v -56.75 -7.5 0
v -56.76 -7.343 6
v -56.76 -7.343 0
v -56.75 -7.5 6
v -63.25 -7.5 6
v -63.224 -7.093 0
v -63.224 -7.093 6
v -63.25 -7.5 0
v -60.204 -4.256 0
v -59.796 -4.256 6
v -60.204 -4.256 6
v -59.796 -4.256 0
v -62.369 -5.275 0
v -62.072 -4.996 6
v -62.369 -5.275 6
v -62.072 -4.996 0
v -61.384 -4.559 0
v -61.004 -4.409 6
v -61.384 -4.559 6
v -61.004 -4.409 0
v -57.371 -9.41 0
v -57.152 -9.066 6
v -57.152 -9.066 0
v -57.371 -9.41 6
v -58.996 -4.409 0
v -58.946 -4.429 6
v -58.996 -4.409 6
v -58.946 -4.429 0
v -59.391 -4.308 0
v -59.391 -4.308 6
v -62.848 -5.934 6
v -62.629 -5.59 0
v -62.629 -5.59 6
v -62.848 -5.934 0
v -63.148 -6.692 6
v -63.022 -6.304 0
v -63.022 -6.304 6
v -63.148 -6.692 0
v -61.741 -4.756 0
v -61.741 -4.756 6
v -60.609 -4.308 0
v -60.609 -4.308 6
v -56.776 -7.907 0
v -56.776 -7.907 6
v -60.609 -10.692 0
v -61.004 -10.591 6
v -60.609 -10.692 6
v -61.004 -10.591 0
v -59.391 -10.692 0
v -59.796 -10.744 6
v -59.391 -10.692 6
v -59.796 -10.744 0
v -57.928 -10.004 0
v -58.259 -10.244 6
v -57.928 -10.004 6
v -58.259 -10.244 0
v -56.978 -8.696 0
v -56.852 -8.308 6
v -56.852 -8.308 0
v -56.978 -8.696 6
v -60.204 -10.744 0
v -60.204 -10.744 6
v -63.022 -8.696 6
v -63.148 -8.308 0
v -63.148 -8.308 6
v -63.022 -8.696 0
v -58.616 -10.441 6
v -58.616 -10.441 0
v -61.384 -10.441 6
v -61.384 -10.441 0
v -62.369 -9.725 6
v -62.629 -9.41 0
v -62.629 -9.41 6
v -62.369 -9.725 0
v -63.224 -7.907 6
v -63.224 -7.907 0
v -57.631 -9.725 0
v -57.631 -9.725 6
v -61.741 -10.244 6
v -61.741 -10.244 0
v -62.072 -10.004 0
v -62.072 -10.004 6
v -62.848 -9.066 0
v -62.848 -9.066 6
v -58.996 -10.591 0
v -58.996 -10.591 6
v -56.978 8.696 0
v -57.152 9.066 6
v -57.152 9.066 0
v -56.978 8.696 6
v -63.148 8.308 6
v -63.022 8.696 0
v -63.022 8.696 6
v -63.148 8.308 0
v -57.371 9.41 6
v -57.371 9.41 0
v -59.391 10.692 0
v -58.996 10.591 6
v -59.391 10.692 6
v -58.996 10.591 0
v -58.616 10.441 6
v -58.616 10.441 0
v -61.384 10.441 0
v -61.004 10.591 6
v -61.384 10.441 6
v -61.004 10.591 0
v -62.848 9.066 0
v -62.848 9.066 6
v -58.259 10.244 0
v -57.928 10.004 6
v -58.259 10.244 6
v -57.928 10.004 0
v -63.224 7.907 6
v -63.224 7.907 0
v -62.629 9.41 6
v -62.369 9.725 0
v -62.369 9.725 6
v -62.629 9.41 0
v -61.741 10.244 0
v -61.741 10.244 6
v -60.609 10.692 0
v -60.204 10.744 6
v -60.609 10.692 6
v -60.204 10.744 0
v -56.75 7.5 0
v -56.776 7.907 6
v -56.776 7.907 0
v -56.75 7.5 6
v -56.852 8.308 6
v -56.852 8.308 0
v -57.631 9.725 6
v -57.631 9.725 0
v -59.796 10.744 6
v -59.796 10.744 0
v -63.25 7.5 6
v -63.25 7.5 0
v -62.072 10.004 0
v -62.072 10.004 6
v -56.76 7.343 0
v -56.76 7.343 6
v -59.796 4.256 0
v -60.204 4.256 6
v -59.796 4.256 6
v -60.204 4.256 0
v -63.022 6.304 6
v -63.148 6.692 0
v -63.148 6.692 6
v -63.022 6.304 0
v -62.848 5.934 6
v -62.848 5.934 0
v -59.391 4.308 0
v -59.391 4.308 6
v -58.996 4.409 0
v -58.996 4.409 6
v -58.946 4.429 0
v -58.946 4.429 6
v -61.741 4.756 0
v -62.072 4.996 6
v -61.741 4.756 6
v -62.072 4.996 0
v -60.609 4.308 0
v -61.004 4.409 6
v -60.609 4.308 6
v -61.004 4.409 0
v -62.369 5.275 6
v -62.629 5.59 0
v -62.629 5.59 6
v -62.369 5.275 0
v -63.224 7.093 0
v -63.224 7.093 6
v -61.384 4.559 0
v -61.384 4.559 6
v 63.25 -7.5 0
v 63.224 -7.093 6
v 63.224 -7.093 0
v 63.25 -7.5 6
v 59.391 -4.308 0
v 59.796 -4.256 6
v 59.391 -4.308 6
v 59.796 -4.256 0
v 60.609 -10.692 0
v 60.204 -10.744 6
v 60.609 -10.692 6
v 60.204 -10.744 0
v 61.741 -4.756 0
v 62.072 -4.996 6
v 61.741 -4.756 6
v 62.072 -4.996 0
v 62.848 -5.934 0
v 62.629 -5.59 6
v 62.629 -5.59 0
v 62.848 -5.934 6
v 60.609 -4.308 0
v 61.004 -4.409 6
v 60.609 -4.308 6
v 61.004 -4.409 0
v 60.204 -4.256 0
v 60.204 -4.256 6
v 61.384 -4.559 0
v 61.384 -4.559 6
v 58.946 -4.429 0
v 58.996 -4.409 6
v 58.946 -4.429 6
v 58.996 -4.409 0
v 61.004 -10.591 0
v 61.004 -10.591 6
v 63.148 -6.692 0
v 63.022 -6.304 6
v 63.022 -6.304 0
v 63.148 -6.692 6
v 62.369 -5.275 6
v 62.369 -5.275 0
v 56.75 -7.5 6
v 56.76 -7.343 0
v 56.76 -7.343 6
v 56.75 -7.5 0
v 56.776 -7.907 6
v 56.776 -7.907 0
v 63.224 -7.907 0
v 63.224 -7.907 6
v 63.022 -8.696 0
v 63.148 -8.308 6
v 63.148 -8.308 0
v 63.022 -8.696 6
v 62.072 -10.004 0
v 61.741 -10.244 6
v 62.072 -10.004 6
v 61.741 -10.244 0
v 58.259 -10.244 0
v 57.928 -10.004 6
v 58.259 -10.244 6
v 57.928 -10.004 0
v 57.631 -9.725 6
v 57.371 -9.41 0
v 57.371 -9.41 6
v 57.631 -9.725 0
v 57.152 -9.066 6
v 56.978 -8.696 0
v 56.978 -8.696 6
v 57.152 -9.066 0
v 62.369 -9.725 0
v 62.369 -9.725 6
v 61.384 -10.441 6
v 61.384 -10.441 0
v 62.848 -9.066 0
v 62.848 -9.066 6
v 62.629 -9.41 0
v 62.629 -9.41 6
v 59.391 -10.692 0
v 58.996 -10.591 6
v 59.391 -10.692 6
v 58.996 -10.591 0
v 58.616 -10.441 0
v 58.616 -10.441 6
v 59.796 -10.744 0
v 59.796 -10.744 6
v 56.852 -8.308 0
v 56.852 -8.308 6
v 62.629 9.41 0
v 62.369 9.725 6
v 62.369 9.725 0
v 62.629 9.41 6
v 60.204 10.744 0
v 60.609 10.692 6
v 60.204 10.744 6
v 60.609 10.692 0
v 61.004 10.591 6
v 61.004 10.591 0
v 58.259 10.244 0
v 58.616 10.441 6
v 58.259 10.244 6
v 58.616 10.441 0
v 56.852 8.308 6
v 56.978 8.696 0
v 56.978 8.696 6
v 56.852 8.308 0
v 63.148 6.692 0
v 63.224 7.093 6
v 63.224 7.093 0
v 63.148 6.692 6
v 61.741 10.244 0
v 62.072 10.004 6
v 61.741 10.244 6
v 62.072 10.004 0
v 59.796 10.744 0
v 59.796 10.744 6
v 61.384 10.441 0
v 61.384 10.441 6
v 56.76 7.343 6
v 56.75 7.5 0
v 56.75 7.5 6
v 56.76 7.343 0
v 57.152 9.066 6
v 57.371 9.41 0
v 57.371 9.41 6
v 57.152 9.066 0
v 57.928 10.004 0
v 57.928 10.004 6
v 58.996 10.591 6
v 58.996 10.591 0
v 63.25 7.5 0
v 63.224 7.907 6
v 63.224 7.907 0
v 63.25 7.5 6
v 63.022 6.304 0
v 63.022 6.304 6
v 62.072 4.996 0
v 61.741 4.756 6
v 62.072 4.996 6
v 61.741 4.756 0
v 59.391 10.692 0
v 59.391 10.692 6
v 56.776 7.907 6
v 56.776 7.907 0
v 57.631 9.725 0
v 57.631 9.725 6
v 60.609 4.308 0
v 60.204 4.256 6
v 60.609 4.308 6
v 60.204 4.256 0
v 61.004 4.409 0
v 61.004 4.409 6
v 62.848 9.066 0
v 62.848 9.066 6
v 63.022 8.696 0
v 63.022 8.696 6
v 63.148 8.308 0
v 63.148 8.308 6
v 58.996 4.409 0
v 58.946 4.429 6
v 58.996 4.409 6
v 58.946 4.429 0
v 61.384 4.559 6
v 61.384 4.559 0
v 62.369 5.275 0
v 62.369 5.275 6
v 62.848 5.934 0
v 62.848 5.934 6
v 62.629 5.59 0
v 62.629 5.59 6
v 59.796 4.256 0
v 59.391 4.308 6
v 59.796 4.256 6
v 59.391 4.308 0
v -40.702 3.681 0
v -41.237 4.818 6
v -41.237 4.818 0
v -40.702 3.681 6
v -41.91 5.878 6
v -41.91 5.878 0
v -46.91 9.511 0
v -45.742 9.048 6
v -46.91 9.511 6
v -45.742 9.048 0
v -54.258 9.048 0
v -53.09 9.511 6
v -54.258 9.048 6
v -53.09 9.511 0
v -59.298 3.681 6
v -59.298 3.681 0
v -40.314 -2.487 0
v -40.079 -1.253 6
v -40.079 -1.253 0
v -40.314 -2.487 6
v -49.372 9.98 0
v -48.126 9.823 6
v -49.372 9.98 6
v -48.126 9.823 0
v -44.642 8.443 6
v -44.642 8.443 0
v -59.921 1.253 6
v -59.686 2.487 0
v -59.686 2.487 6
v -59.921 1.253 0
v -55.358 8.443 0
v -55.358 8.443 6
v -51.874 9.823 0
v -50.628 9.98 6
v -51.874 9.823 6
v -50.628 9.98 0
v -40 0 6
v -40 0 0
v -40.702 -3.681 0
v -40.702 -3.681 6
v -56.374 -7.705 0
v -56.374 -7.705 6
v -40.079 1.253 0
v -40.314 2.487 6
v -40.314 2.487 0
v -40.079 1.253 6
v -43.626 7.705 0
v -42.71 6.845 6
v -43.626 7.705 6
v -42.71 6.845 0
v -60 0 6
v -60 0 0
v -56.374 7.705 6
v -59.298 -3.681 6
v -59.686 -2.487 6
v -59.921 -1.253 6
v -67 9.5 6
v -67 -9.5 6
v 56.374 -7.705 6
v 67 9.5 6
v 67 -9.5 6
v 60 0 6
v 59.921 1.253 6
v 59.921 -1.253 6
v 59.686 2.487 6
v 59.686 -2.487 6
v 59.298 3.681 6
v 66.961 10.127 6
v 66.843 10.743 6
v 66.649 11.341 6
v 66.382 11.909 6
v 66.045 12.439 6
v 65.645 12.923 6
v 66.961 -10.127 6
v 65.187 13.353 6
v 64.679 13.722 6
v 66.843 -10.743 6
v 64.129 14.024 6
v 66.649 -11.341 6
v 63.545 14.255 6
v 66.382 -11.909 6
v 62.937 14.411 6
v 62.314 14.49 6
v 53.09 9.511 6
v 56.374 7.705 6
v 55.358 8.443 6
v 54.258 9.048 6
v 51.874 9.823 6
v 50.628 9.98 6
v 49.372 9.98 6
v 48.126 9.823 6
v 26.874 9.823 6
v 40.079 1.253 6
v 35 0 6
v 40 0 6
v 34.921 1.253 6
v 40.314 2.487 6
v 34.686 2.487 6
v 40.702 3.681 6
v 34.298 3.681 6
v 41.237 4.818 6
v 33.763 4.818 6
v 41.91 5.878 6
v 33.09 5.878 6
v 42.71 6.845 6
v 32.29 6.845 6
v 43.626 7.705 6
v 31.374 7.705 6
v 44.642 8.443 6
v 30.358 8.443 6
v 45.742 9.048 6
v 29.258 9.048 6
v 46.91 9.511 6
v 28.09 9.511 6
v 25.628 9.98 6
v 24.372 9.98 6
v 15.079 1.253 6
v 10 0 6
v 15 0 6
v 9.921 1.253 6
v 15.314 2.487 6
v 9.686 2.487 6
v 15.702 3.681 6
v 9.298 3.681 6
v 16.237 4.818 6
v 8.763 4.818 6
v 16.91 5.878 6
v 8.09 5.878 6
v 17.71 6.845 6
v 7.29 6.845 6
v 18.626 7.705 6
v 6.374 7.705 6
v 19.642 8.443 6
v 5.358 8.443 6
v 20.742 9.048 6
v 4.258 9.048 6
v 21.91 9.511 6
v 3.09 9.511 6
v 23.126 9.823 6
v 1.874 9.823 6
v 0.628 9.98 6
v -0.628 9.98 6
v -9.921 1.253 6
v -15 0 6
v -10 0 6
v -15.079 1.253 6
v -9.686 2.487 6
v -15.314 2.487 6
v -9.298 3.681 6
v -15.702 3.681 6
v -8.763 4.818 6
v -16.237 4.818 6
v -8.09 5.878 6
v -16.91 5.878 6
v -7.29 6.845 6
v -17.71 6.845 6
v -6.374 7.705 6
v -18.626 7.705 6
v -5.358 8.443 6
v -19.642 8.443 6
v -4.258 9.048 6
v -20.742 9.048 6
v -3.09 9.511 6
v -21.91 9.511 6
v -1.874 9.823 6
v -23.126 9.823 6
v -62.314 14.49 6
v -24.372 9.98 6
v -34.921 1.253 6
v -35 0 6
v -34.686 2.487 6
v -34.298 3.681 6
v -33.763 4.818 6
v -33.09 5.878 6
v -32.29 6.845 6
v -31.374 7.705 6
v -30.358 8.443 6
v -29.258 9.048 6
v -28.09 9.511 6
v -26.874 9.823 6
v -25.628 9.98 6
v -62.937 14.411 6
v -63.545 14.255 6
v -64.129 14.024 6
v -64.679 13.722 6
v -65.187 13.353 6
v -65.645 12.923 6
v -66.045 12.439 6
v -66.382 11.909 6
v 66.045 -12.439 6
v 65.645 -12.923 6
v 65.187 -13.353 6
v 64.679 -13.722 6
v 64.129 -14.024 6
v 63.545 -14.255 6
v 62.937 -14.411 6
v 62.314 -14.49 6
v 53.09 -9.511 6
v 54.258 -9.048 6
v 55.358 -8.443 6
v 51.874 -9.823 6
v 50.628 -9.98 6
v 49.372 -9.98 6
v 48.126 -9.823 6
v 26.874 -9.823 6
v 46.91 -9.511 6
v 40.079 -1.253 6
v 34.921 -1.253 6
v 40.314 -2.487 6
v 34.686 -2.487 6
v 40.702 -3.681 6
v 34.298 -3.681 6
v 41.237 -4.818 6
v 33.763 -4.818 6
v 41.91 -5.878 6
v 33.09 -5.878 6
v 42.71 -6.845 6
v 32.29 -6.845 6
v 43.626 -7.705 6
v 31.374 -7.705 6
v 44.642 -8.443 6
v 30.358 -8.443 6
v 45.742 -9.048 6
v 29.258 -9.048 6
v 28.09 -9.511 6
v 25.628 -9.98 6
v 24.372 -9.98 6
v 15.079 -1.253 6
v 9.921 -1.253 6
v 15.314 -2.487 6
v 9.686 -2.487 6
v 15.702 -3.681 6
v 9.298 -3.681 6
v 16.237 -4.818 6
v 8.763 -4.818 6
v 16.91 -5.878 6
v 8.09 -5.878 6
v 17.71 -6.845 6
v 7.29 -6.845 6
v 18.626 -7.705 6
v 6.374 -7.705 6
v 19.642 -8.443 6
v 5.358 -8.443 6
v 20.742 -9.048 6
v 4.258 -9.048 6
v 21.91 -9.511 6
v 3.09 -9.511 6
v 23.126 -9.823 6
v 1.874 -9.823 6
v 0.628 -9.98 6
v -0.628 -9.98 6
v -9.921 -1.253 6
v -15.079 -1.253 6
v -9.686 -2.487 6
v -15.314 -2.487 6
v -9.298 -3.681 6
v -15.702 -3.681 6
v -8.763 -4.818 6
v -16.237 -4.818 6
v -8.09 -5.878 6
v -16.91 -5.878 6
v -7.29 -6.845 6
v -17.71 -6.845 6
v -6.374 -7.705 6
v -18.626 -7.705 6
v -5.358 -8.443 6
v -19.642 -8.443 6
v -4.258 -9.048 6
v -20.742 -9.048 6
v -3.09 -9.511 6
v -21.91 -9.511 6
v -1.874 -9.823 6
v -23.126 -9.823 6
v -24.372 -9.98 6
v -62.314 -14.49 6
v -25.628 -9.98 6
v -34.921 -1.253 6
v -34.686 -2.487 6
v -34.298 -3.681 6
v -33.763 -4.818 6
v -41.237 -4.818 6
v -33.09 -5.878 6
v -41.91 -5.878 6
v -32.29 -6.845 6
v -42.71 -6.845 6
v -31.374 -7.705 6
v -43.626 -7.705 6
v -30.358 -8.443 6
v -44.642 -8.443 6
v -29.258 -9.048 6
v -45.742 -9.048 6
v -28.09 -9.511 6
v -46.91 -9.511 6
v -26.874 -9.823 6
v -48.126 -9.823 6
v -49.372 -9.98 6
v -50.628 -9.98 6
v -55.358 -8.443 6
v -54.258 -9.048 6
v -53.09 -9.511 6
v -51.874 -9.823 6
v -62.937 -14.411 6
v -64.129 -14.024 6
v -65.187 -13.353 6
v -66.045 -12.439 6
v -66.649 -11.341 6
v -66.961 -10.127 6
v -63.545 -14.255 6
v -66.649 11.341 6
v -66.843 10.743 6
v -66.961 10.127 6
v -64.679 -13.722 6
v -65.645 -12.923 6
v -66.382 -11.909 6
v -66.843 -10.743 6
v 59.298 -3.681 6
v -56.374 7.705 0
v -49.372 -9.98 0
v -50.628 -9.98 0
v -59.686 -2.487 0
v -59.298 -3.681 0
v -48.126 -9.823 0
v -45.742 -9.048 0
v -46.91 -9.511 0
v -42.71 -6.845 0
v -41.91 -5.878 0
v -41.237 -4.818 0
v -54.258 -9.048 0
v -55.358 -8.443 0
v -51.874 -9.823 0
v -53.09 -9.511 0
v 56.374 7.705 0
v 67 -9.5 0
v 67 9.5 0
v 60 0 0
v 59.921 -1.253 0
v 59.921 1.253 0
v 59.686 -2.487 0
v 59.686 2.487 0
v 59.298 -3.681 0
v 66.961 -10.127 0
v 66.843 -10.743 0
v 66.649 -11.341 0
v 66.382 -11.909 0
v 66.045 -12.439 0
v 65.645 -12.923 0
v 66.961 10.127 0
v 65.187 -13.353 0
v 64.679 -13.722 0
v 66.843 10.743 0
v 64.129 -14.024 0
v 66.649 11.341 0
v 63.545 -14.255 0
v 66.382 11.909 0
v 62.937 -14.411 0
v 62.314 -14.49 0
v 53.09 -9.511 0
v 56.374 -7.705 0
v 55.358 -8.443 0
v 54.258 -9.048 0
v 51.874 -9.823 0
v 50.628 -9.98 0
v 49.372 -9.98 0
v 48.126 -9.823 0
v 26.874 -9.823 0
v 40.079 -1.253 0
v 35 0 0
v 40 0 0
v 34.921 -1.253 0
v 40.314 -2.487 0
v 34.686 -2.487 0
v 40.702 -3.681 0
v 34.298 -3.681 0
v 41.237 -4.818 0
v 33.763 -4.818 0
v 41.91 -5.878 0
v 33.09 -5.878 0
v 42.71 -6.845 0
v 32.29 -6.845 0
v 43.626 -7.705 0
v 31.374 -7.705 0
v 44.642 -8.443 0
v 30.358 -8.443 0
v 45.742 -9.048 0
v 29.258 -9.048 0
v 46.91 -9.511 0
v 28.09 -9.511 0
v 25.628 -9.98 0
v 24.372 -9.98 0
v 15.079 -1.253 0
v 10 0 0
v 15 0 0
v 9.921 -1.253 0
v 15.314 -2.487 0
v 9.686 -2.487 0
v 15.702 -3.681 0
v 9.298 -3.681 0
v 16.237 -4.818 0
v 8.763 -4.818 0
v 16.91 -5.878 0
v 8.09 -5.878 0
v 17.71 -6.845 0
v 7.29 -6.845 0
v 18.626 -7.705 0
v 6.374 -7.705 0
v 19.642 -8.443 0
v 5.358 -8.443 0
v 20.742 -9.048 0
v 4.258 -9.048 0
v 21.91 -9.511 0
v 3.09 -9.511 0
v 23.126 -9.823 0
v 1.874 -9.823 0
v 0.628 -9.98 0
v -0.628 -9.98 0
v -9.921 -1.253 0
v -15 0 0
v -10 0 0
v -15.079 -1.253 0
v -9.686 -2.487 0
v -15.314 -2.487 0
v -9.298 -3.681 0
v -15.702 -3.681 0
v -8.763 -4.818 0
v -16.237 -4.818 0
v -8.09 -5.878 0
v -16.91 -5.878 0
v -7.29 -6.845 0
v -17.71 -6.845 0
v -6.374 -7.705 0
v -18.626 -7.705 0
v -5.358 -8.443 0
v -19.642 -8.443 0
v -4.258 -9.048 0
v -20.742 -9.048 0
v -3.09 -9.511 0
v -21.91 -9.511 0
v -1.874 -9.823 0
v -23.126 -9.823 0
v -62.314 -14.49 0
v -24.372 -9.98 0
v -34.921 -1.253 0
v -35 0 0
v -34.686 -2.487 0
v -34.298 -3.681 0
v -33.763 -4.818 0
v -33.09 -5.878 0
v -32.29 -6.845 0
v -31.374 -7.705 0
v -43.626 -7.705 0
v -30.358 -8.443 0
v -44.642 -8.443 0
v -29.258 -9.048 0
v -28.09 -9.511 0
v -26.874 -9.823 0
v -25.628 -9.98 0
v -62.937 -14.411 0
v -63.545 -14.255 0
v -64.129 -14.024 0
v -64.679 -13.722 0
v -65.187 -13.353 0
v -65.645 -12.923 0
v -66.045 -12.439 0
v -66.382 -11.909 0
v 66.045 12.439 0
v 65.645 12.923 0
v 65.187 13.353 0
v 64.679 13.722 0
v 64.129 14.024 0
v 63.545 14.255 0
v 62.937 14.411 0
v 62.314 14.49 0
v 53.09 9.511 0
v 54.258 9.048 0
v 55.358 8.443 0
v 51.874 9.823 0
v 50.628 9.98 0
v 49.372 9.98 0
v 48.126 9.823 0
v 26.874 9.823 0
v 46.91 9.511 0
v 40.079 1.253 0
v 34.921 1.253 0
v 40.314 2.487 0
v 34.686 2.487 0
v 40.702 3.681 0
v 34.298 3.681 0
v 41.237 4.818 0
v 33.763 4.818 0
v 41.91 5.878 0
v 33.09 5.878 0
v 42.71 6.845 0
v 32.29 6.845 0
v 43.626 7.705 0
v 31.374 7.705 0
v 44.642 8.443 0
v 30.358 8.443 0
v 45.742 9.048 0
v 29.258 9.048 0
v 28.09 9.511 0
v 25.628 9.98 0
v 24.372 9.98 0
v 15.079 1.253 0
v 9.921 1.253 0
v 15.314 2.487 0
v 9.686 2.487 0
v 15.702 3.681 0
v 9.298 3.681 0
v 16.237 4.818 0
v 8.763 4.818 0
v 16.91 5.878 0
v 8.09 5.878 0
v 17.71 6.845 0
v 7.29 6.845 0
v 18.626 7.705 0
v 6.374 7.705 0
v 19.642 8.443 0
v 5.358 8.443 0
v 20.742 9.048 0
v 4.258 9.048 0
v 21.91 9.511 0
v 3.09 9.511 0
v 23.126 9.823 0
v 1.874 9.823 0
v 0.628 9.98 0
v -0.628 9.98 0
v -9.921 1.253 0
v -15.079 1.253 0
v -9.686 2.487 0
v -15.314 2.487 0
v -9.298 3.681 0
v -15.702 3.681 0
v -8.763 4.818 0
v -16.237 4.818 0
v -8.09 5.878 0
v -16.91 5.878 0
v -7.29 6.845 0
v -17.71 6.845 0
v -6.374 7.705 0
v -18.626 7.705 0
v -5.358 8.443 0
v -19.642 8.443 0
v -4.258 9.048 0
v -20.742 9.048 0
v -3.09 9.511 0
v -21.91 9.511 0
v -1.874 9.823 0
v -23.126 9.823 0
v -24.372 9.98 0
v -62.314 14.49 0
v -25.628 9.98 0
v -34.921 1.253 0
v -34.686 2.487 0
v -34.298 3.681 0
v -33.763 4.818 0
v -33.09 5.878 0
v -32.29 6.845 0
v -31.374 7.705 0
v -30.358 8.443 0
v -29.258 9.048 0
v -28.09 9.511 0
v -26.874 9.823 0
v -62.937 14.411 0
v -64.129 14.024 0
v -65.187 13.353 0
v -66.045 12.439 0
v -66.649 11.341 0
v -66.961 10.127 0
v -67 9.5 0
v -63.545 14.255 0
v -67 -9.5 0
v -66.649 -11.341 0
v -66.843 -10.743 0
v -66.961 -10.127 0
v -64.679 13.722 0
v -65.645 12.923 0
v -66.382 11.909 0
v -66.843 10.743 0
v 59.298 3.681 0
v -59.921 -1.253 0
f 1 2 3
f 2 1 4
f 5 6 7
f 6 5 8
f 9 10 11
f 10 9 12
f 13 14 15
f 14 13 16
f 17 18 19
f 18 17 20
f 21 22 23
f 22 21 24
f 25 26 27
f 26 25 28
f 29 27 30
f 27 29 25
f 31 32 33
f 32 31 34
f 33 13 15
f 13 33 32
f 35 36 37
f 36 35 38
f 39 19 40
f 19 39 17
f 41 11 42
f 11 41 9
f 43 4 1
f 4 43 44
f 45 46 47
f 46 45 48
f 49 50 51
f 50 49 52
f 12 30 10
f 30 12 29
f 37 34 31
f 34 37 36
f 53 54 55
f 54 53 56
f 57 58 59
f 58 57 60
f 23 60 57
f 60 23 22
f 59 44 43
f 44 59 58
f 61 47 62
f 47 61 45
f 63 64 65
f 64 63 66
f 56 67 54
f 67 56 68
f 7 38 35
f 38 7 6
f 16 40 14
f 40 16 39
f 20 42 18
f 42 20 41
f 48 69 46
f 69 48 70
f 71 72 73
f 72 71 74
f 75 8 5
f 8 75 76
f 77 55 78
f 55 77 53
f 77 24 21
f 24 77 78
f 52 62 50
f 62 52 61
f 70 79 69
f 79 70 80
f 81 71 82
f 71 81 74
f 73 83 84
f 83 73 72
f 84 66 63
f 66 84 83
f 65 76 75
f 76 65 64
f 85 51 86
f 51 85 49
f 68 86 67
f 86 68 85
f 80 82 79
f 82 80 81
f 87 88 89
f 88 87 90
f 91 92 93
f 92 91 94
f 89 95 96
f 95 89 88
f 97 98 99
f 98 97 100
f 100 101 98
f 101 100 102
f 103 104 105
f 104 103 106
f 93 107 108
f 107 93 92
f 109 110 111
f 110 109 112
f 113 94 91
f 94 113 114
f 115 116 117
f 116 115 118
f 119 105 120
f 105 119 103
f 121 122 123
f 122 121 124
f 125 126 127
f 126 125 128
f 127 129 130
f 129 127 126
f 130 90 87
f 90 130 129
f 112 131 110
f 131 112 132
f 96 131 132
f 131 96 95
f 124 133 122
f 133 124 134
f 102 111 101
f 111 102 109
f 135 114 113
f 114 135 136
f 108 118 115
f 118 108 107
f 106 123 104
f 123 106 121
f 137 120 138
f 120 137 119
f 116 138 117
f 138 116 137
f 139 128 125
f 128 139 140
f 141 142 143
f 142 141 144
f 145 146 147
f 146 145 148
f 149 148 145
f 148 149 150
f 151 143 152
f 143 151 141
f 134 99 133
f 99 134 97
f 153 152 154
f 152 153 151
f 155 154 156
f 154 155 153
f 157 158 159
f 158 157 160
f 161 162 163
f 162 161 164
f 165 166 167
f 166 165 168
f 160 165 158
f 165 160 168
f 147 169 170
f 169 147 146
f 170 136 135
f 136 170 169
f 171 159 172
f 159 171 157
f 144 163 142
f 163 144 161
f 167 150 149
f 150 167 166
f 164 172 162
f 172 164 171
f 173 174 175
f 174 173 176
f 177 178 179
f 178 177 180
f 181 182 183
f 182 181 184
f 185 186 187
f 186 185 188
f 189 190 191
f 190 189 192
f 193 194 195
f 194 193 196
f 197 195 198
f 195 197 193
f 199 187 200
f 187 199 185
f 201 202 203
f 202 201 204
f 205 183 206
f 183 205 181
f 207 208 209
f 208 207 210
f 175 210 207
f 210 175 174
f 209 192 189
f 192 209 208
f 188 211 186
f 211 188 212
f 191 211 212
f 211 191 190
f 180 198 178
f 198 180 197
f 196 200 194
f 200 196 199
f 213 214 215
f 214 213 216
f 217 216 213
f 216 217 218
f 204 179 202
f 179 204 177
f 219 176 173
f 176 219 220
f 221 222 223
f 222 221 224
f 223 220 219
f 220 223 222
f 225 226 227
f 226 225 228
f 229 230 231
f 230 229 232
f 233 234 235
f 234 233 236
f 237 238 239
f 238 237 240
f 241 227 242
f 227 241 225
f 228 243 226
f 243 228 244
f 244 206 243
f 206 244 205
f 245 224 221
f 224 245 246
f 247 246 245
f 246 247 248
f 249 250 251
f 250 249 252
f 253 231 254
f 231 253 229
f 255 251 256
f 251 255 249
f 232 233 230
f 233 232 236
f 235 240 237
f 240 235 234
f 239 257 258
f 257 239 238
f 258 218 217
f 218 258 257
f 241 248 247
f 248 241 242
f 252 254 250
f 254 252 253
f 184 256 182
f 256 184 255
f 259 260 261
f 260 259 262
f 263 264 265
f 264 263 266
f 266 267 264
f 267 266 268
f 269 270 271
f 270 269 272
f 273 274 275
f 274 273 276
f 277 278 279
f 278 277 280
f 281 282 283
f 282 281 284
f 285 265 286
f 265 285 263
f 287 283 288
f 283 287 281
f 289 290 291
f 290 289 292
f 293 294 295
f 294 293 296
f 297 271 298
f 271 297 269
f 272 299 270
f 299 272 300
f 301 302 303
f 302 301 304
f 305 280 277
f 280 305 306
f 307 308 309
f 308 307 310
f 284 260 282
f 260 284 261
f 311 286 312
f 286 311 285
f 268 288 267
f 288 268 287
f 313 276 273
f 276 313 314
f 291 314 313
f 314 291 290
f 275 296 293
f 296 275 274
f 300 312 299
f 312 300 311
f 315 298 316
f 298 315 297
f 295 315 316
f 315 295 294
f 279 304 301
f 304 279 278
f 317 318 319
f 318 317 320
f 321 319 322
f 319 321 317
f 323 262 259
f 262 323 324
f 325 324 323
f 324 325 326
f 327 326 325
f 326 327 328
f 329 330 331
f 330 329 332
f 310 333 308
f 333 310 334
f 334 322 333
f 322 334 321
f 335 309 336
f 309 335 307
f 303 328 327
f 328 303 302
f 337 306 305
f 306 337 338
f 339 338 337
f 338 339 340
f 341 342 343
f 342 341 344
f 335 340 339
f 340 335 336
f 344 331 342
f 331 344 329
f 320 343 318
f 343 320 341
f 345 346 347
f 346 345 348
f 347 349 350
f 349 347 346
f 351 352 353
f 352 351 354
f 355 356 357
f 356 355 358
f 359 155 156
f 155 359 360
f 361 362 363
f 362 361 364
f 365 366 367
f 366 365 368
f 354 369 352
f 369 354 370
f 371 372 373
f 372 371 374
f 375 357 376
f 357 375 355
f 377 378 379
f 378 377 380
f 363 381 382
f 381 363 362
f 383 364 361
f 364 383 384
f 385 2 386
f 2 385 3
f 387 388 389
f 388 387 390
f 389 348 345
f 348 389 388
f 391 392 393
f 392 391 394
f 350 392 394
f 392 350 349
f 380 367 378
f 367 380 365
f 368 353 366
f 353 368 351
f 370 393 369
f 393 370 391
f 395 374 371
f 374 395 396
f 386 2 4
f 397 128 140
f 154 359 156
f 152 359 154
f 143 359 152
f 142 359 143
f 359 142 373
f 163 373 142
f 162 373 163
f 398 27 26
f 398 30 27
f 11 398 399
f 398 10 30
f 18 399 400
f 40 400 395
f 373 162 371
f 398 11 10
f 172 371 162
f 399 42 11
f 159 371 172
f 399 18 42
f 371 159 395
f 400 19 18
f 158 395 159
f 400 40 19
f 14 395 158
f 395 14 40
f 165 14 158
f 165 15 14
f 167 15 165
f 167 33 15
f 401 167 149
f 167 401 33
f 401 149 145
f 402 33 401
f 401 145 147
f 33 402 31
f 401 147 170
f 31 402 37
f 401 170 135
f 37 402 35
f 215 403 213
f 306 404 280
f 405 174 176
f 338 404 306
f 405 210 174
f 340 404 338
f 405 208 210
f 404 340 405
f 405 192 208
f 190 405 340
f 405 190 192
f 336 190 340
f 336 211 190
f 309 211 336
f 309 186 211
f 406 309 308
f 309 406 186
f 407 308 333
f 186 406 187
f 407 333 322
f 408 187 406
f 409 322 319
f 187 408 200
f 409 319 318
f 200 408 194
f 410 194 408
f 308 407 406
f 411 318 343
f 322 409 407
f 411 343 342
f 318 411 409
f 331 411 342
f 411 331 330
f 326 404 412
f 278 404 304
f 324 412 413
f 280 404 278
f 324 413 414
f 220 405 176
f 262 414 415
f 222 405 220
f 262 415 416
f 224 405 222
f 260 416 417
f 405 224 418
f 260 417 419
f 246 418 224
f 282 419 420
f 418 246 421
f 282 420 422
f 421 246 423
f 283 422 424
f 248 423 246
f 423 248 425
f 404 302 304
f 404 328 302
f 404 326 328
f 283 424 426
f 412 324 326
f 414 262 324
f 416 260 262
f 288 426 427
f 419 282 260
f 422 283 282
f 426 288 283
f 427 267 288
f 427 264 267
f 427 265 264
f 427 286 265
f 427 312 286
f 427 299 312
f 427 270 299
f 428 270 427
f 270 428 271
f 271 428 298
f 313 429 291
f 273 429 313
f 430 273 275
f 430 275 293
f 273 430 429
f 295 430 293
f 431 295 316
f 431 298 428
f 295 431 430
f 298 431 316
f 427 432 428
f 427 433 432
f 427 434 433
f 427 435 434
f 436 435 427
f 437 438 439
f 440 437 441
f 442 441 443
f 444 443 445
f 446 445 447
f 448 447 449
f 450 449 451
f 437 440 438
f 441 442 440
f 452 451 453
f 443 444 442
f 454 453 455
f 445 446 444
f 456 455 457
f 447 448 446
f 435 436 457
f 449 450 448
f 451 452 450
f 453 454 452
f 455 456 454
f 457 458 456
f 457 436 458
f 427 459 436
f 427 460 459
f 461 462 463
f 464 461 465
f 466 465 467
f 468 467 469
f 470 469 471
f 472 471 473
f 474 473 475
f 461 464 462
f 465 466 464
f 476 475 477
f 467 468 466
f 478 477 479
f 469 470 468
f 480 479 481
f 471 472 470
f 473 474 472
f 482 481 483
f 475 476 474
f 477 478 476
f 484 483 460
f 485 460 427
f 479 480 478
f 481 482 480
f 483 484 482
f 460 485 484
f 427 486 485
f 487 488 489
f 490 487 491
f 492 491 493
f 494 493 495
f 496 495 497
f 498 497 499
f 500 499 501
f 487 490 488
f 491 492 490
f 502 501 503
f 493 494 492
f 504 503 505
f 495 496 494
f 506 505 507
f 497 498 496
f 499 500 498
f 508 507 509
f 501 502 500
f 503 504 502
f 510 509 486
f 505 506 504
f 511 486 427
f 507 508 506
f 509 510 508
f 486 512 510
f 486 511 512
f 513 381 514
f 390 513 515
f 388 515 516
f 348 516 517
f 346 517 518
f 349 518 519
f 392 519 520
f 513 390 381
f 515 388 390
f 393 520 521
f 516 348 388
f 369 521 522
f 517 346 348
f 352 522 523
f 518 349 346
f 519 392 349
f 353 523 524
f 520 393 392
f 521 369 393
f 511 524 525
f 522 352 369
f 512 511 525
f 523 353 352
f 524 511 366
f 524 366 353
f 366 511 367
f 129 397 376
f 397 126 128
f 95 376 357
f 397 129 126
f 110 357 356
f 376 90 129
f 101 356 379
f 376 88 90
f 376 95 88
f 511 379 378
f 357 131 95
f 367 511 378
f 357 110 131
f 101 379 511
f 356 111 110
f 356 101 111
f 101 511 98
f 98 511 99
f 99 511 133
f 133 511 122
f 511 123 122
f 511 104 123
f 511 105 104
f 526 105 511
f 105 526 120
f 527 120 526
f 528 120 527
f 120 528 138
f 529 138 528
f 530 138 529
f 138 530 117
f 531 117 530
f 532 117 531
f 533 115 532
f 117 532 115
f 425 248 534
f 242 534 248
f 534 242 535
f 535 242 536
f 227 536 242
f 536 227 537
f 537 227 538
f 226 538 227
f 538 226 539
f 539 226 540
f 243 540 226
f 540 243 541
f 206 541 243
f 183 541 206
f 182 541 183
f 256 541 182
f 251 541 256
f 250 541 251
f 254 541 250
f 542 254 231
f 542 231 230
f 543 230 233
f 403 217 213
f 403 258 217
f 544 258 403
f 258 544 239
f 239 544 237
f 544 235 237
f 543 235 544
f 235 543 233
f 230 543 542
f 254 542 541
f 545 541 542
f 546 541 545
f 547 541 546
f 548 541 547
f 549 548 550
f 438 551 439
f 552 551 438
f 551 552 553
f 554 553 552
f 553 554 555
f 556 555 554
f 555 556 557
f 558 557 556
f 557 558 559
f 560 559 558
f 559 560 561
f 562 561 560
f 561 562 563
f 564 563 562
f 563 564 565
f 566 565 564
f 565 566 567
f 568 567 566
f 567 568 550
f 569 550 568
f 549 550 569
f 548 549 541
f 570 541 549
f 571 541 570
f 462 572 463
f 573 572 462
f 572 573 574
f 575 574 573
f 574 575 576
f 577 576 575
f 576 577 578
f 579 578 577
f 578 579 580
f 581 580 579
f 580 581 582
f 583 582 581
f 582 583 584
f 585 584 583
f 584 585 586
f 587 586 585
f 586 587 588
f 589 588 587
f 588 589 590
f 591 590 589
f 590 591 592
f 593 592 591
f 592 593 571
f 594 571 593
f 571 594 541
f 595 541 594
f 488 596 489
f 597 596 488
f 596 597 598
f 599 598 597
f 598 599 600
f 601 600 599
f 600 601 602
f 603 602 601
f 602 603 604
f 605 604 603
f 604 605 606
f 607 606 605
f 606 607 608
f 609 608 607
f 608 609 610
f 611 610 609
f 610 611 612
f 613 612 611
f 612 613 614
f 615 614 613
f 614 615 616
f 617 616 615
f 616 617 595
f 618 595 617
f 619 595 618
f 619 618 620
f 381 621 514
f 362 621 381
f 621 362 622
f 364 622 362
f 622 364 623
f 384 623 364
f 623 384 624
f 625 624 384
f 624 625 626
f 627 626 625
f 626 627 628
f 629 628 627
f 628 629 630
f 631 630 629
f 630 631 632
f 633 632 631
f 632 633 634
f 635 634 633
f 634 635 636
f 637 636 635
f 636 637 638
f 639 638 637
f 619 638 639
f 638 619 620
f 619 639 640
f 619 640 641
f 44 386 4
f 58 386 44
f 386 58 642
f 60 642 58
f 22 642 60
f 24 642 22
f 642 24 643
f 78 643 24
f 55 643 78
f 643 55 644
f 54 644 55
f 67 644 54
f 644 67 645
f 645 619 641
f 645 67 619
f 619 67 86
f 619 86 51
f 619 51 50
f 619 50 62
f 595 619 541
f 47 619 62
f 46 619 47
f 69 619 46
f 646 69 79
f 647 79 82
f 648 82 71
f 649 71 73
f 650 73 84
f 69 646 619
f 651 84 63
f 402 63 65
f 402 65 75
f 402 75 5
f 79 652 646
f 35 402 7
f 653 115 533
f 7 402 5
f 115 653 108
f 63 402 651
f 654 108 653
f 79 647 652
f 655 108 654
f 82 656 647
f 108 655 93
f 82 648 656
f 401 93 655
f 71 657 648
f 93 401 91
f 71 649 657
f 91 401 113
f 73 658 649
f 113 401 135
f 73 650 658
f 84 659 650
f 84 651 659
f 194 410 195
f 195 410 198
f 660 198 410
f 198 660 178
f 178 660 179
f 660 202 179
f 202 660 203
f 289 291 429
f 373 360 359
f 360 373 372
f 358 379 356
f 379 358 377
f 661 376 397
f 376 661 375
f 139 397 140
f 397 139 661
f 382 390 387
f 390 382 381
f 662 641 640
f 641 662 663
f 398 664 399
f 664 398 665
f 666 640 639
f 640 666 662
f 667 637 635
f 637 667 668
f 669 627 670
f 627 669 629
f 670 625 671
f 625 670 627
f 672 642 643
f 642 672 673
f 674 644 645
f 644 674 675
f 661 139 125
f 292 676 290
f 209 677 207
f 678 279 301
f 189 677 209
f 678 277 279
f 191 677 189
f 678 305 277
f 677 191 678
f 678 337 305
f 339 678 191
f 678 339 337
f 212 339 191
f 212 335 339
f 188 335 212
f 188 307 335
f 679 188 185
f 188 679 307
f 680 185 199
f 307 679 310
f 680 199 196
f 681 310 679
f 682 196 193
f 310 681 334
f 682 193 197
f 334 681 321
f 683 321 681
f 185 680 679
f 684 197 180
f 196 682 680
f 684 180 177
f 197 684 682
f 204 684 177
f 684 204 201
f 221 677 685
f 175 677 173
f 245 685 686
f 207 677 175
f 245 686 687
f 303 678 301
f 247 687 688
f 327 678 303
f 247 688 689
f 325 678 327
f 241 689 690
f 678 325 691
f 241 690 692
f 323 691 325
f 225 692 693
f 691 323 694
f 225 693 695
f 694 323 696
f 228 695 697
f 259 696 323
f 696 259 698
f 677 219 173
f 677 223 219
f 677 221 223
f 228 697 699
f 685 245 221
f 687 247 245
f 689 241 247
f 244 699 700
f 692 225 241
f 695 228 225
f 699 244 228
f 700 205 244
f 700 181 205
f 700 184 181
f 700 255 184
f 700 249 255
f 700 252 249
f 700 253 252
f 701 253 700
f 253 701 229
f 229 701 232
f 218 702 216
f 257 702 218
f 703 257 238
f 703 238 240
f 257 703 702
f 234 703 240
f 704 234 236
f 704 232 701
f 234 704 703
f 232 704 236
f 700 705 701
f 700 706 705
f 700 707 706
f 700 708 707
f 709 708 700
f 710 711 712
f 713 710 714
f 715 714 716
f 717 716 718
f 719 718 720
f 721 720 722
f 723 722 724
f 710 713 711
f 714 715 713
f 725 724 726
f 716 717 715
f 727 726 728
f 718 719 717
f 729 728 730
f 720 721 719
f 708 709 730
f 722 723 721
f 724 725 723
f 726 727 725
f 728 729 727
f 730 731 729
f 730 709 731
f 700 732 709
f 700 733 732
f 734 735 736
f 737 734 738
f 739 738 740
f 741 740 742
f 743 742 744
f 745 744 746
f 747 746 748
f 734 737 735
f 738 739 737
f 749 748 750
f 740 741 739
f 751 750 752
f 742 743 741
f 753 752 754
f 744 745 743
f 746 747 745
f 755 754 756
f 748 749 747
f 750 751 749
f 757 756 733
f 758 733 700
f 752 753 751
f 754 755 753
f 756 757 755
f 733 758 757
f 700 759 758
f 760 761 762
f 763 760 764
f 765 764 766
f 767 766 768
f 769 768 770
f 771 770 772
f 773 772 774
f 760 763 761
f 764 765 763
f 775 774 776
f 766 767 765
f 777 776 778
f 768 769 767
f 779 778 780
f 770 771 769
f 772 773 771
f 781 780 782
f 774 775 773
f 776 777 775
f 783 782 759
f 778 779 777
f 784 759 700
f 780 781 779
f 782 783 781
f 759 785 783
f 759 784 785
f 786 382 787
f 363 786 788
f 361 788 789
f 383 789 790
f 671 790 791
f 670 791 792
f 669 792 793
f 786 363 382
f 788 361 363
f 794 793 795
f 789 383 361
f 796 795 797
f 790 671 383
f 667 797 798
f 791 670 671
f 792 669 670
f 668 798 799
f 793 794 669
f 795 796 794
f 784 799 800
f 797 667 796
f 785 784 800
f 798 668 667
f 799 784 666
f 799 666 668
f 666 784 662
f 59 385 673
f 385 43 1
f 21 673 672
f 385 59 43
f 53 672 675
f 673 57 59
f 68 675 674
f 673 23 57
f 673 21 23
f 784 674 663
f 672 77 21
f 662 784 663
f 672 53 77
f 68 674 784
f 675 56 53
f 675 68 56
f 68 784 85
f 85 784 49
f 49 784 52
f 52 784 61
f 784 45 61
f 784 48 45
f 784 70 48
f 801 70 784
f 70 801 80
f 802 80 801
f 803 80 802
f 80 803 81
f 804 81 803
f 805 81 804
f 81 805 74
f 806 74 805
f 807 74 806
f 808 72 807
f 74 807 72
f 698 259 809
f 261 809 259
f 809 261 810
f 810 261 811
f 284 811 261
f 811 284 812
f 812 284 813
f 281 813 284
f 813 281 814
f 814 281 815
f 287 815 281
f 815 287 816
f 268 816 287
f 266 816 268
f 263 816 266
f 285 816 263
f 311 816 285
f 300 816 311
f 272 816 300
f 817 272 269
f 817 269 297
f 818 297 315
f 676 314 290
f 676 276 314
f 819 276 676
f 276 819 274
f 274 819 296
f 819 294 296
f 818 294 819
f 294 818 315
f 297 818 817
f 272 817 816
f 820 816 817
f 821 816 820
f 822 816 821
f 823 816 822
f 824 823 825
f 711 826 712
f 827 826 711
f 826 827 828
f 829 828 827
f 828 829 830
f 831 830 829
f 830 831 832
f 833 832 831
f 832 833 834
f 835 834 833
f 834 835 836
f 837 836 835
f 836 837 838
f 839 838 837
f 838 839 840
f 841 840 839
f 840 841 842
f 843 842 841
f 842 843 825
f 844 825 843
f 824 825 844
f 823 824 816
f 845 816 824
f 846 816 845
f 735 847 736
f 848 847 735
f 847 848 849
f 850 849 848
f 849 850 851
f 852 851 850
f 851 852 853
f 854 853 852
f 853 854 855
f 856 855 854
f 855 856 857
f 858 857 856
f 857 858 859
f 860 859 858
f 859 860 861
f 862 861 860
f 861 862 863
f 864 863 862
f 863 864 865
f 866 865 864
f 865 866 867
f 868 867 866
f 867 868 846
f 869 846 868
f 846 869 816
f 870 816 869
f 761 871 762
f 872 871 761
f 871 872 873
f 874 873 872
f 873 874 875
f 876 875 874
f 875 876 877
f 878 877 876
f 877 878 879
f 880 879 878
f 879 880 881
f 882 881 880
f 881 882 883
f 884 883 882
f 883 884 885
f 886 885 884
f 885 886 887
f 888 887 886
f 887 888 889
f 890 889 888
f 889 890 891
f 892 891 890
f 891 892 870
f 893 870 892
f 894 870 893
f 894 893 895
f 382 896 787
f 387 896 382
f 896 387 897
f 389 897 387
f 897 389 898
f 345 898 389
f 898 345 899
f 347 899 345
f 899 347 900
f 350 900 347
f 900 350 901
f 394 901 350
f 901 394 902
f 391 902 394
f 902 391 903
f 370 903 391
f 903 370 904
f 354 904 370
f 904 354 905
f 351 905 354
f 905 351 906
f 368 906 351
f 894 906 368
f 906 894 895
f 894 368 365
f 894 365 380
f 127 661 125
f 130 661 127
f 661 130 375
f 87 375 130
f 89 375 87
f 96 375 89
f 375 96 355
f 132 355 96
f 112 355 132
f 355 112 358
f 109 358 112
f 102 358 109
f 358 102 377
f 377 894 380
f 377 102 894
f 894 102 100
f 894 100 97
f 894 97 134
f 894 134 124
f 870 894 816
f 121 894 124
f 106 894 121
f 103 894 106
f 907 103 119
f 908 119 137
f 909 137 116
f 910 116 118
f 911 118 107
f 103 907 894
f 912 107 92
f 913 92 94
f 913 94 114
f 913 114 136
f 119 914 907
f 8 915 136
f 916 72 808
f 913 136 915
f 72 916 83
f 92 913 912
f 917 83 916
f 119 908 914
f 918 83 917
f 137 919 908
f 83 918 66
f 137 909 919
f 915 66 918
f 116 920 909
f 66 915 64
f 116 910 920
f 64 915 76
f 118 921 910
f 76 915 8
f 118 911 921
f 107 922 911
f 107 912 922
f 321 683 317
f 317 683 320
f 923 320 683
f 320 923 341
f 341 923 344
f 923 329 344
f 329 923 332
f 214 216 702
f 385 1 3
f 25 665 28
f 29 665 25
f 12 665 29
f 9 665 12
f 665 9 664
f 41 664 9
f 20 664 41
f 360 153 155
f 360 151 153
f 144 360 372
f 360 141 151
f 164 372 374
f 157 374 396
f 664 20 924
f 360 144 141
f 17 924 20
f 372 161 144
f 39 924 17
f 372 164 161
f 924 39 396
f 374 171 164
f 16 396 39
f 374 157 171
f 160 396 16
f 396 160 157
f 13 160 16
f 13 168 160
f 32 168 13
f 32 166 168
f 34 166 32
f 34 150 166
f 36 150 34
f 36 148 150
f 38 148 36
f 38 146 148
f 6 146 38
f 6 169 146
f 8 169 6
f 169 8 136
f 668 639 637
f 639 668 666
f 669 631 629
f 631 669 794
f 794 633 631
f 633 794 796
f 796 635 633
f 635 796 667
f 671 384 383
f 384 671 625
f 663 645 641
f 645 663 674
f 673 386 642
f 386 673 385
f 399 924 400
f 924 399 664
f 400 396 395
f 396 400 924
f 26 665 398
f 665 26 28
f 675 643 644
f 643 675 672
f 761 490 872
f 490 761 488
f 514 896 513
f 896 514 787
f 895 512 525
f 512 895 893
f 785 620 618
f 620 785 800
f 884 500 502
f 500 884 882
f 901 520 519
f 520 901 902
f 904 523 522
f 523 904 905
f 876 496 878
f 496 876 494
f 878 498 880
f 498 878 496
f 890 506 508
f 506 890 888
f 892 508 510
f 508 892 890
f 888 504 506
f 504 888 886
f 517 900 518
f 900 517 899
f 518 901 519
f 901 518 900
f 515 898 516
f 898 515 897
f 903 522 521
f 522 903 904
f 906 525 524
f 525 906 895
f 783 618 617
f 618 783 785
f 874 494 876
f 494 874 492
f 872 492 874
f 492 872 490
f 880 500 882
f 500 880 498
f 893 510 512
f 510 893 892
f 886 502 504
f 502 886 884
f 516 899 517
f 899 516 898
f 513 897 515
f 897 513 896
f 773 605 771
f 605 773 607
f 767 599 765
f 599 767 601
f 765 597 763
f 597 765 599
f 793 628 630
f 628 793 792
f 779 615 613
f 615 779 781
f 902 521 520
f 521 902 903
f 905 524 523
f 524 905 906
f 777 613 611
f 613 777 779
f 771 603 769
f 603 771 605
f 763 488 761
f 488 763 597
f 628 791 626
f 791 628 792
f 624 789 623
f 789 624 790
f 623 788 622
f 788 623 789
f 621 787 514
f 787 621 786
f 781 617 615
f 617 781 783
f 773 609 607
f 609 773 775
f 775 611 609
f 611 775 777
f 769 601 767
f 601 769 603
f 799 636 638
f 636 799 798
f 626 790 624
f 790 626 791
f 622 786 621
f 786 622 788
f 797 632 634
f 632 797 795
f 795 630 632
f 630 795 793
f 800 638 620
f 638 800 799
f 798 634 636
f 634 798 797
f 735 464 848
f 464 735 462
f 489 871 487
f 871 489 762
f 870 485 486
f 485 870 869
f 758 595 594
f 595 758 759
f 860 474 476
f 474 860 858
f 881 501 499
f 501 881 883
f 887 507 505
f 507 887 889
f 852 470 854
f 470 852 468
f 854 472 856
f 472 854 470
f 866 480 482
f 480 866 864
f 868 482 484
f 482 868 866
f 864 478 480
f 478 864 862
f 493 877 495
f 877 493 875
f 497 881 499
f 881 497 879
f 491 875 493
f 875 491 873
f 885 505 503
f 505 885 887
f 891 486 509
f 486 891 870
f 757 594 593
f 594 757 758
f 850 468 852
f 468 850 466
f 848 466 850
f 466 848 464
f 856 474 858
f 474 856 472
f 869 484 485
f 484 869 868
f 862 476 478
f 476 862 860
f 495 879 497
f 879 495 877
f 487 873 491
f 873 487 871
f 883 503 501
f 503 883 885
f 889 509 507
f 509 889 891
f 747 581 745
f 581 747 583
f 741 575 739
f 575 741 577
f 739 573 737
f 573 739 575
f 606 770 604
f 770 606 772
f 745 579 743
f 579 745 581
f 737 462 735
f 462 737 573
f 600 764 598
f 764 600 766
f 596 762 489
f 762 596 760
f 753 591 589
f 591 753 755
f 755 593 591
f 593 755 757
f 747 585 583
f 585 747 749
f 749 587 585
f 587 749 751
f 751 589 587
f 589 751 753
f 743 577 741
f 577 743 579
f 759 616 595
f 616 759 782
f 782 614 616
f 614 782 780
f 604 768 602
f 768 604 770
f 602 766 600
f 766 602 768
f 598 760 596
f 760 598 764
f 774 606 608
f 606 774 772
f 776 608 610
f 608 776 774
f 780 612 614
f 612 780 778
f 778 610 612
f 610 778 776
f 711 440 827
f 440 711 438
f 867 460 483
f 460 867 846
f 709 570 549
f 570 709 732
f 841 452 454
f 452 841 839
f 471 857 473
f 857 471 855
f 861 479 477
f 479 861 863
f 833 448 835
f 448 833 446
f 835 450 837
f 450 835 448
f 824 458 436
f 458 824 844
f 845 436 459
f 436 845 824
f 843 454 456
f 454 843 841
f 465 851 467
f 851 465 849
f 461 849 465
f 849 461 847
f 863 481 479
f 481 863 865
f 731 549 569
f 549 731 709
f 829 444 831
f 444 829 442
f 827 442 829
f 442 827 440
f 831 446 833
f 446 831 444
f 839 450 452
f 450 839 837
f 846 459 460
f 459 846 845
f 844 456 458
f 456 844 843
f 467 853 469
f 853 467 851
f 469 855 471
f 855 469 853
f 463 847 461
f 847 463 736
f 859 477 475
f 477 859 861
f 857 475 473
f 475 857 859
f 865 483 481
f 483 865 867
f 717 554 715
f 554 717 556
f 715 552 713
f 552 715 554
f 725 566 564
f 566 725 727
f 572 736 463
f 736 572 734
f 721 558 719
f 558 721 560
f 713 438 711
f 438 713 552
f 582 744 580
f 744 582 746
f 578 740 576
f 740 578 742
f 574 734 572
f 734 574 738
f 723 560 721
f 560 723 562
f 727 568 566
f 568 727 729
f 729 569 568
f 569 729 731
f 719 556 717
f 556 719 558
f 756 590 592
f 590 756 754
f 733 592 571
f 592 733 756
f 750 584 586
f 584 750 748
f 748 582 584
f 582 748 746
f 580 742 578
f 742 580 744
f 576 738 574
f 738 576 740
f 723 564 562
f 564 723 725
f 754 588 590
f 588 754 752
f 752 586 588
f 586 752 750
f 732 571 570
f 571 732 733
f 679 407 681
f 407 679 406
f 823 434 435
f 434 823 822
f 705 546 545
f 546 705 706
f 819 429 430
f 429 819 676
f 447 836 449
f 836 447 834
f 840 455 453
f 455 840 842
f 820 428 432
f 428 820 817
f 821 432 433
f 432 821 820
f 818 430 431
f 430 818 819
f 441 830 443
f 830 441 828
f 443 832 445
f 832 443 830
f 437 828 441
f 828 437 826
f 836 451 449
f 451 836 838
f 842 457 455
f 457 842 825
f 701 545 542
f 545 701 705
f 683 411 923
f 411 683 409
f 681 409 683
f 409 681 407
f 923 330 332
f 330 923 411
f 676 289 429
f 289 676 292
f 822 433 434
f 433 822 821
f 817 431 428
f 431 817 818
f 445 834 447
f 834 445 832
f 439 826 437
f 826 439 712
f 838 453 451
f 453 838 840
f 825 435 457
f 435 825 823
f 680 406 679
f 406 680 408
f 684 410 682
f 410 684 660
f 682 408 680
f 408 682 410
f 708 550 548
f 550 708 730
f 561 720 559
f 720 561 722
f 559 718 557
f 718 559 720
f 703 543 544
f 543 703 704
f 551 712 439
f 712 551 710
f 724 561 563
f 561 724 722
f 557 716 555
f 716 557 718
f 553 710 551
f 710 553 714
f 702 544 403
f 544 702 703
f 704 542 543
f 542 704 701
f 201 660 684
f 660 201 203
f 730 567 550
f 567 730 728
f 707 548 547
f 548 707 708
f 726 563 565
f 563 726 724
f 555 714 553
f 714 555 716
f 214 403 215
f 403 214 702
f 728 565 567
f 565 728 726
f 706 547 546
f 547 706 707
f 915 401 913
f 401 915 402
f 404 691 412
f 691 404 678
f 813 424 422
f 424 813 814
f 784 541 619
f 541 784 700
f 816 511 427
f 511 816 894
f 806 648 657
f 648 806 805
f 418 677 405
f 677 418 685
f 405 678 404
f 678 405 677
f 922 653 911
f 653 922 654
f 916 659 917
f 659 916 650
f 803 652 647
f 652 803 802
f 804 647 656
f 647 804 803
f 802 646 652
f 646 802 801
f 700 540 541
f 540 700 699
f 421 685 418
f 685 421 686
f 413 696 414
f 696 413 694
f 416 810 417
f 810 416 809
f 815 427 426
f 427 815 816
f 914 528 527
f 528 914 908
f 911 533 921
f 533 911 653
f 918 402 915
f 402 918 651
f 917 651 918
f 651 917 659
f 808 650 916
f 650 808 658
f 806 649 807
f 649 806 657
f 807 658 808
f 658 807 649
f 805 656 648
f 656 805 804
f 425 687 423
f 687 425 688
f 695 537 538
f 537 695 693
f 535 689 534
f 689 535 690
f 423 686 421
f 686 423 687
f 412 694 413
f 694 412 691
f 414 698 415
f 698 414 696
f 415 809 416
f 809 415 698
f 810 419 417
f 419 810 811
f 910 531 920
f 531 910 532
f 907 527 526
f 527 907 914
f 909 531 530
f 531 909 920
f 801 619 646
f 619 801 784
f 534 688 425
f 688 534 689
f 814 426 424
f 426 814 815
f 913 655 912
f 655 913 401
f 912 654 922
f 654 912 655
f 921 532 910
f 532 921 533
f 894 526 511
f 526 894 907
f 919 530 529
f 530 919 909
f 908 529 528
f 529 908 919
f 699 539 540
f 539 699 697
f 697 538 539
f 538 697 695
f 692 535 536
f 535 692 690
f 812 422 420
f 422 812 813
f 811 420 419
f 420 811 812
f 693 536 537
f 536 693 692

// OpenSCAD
$fn = 50;


difference() {
	union() {
		hull() {
			translate(v = [-62.0000000000, 9.5000000000, 0]) {
				cylinder(h = 6, r = 5);
			}
			translate(v = [62.0000000000, 9.5000000000, 0]) {
				cylinder(h = 6, r = 5);
			}
			translate(v = [-62.0000000000, -9.5000000000, 0]) {
				cylinder(h = 6, r = 5);
			}
			translate(v = [62.0000000000, -9.5000000000, 0]) {
				cylinder(h = 6, r = 5);
			}
		}
	}
	union() {
		#translate(v = [-60.0000000000, -7.5000000000, -100.0000000000]) {
			cylinder(h = 200, r = 3.2500000000);
		}
		#translate(v = [-60.0000000000, 7.5000000000, -100.0000000000]) {
			cylinder(h = 200, r = 3.2500000000);
		}
		#translate(v = [60.0000000000, -7.5000000000, -100.0000000000]) {
			cylinder(h = 200, r = 3.2500000000);
		}
		#translate(v = [60.0000000000, 7.5000000000, -100.0000000000]) {
			cylinder(h = 200, r = 3.2500000000);
		}
		#translate(v = [-50.0000000000, 0, 0]) {
			cylinder(h = 6, r = 10.0000000000);
		}
		#translate(v = [-25.0000000000, 0, 0]) {
			cylinder(h = 6, r = 10.0000000000);
		}
		#cylinder(h = 6, r = 10.0000000000);
		#translate(v = [25.0000000000, 0, 0]) {
			cylinder(h = 6, r = 10.0000000000);
		}
		#translate(v = [50.0000000000, 0, 0]) {
			cylinder(h = 6, r = 10.0000000000);
		}
	}
}
